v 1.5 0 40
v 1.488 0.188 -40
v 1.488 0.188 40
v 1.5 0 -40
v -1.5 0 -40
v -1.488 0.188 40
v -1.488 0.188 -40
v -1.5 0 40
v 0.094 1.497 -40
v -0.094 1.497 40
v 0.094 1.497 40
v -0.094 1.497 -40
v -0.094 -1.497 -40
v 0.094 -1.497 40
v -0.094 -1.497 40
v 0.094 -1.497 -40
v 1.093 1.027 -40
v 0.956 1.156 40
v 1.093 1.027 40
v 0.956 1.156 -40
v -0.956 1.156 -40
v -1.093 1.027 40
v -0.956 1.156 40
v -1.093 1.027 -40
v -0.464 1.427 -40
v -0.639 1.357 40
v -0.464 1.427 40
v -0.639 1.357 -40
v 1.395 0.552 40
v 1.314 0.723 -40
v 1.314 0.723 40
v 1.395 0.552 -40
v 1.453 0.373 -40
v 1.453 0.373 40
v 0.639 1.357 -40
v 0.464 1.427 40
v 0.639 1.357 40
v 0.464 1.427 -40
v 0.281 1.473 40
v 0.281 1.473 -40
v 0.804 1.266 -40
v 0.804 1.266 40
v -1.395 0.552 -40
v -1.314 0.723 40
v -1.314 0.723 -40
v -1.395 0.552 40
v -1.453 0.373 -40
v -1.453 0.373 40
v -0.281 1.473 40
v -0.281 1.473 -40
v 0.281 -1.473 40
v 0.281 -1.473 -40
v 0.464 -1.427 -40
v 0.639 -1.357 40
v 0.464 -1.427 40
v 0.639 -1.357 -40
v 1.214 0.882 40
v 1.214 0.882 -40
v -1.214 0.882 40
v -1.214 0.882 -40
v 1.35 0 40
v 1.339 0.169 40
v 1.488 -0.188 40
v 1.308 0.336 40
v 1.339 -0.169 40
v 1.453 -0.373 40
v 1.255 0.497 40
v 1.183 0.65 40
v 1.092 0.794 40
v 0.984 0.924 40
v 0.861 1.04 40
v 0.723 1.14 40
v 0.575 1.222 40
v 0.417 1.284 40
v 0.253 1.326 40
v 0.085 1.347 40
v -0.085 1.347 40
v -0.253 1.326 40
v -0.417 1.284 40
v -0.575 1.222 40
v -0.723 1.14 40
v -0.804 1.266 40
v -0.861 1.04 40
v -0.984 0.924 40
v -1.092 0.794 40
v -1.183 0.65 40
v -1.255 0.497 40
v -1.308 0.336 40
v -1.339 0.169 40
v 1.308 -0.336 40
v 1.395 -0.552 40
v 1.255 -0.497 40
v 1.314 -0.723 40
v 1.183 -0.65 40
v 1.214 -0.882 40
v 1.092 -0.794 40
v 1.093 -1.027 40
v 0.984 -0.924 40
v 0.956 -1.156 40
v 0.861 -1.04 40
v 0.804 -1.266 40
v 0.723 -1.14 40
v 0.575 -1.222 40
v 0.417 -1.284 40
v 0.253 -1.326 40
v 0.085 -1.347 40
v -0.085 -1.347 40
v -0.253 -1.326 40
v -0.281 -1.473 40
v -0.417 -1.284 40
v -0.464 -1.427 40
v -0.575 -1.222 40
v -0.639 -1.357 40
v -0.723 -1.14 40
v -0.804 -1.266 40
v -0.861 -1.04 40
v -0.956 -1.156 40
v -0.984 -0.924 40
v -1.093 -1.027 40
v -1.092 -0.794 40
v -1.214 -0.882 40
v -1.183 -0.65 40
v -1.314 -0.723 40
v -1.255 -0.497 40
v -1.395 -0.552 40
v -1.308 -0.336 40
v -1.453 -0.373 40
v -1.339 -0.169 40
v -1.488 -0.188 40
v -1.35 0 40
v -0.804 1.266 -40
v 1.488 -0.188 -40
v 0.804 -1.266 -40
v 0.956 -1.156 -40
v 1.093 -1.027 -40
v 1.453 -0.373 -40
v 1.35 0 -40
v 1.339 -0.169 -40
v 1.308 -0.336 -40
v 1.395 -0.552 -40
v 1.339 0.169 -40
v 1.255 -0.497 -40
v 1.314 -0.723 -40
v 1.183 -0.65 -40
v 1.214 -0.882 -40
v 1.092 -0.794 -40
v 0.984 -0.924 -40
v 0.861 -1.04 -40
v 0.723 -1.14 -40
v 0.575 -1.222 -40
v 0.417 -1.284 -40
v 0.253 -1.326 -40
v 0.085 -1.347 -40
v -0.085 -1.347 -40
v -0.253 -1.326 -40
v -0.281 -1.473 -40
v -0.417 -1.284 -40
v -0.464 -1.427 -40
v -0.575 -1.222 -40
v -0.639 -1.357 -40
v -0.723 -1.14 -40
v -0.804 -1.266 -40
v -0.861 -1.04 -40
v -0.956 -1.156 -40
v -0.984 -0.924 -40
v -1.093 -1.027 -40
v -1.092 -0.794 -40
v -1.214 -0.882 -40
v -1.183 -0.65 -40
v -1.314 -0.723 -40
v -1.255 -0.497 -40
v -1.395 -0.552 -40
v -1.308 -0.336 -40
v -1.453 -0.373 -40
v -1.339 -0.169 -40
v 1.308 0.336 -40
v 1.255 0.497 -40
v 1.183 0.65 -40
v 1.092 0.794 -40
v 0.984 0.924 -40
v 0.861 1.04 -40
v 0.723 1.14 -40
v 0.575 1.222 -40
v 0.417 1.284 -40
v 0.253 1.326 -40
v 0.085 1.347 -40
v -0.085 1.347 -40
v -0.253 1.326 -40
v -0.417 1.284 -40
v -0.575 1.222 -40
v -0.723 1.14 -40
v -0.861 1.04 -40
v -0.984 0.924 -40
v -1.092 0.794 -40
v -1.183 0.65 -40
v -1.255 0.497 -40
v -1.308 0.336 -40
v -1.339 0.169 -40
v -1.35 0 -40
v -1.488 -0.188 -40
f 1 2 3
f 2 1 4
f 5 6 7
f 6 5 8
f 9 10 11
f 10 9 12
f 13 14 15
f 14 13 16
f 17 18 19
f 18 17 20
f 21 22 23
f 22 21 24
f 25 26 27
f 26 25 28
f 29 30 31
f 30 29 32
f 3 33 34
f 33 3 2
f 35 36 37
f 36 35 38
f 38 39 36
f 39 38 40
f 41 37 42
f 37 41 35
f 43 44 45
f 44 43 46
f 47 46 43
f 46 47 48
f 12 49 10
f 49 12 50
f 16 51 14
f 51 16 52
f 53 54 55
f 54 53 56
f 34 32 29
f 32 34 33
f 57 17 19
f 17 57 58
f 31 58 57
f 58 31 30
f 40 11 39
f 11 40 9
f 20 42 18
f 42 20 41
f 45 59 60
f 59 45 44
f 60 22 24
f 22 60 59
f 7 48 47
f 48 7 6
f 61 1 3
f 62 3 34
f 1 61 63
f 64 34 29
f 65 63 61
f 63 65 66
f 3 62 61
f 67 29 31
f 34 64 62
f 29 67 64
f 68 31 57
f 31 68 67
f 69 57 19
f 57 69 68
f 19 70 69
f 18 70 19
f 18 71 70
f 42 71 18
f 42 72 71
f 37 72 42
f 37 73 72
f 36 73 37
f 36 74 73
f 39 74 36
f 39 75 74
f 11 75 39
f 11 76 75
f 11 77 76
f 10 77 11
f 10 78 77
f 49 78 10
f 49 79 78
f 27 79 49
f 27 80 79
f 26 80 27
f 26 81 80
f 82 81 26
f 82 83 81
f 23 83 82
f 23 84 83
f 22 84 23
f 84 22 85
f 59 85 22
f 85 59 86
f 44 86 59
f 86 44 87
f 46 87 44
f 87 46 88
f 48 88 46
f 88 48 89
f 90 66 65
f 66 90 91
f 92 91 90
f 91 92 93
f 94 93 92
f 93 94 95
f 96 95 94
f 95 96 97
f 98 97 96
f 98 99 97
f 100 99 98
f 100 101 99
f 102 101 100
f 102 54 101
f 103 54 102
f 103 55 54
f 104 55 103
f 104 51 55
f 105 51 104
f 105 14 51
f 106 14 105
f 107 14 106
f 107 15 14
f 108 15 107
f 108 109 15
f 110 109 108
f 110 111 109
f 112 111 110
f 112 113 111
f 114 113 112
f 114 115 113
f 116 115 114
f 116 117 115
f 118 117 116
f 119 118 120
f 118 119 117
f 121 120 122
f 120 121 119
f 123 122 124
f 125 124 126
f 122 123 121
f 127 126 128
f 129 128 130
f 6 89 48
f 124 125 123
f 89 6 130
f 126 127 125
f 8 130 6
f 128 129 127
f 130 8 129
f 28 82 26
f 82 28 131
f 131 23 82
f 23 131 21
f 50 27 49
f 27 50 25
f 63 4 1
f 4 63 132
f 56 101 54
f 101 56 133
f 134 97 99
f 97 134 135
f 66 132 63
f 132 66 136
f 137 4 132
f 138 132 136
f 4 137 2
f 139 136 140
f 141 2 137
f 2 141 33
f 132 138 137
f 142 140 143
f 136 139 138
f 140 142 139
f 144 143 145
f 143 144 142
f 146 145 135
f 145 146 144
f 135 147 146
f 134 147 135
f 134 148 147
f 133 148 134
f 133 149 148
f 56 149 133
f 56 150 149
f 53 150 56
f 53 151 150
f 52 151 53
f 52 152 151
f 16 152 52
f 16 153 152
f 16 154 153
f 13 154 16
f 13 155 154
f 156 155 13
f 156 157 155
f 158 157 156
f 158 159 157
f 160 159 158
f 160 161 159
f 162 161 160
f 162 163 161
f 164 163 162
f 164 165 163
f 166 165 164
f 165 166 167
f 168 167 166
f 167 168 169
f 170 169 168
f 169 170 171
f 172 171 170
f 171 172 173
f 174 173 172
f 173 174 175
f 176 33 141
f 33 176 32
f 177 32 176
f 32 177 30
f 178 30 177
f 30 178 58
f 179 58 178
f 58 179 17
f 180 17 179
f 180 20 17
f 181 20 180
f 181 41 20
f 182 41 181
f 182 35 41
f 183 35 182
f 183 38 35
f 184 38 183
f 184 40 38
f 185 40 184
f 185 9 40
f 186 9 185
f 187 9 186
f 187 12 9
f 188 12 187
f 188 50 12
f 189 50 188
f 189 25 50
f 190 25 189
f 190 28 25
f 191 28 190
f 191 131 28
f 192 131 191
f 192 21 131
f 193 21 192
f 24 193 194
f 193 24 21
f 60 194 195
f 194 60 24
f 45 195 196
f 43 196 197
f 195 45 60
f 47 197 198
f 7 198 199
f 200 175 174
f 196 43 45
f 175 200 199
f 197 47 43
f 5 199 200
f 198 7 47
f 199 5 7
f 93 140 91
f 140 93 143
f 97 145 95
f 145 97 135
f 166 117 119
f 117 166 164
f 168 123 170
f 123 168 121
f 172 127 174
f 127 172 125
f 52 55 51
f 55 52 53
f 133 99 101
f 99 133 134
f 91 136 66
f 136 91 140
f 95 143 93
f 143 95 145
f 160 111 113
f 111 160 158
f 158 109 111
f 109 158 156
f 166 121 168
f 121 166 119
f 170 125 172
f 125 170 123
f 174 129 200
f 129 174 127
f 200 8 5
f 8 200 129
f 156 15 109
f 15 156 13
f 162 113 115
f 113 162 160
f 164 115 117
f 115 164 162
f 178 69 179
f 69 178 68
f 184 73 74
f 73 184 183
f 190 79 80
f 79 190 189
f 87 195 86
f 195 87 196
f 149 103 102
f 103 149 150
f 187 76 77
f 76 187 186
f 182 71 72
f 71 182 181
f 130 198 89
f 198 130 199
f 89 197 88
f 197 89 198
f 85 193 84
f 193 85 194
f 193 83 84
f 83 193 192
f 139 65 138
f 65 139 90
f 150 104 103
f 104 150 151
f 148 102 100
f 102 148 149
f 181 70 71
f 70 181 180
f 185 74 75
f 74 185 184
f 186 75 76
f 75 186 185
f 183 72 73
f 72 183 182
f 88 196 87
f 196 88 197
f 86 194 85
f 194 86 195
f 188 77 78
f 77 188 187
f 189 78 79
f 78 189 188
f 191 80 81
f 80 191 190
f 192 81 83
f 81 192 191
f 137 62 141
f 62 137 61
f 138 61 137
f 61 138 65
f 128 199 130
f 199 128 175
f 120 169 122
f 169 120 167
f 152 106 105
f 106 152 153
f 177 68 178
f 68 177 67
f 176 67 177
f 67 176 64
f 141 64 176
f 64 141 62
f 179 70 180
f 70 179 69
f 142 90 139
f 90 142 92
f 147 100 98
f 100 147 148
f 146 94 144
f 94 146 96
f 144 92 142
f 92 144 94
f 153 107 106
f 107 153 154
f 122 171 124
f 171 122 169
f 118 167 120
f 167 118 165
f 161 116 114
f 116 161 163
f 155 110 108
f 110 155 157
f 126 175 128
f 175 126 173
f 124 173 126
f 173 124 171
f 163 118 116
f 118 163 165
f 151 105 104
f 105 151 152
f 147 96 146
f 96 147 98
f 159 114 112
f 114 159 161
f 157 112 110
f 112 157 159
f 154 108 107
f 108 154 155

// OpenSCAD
$fn = 50;


difference() {
	union() {
		translate(v = [0, 0, -40.0000000000]) {
			cylinder(h = 80, r = 1.5000000000);
		}
	}
	union() {
		translate(v = [0, 0, -100.0000000000]) {
			cylinder(h = 200, r = 1.3500000000);
		}
	}
}
